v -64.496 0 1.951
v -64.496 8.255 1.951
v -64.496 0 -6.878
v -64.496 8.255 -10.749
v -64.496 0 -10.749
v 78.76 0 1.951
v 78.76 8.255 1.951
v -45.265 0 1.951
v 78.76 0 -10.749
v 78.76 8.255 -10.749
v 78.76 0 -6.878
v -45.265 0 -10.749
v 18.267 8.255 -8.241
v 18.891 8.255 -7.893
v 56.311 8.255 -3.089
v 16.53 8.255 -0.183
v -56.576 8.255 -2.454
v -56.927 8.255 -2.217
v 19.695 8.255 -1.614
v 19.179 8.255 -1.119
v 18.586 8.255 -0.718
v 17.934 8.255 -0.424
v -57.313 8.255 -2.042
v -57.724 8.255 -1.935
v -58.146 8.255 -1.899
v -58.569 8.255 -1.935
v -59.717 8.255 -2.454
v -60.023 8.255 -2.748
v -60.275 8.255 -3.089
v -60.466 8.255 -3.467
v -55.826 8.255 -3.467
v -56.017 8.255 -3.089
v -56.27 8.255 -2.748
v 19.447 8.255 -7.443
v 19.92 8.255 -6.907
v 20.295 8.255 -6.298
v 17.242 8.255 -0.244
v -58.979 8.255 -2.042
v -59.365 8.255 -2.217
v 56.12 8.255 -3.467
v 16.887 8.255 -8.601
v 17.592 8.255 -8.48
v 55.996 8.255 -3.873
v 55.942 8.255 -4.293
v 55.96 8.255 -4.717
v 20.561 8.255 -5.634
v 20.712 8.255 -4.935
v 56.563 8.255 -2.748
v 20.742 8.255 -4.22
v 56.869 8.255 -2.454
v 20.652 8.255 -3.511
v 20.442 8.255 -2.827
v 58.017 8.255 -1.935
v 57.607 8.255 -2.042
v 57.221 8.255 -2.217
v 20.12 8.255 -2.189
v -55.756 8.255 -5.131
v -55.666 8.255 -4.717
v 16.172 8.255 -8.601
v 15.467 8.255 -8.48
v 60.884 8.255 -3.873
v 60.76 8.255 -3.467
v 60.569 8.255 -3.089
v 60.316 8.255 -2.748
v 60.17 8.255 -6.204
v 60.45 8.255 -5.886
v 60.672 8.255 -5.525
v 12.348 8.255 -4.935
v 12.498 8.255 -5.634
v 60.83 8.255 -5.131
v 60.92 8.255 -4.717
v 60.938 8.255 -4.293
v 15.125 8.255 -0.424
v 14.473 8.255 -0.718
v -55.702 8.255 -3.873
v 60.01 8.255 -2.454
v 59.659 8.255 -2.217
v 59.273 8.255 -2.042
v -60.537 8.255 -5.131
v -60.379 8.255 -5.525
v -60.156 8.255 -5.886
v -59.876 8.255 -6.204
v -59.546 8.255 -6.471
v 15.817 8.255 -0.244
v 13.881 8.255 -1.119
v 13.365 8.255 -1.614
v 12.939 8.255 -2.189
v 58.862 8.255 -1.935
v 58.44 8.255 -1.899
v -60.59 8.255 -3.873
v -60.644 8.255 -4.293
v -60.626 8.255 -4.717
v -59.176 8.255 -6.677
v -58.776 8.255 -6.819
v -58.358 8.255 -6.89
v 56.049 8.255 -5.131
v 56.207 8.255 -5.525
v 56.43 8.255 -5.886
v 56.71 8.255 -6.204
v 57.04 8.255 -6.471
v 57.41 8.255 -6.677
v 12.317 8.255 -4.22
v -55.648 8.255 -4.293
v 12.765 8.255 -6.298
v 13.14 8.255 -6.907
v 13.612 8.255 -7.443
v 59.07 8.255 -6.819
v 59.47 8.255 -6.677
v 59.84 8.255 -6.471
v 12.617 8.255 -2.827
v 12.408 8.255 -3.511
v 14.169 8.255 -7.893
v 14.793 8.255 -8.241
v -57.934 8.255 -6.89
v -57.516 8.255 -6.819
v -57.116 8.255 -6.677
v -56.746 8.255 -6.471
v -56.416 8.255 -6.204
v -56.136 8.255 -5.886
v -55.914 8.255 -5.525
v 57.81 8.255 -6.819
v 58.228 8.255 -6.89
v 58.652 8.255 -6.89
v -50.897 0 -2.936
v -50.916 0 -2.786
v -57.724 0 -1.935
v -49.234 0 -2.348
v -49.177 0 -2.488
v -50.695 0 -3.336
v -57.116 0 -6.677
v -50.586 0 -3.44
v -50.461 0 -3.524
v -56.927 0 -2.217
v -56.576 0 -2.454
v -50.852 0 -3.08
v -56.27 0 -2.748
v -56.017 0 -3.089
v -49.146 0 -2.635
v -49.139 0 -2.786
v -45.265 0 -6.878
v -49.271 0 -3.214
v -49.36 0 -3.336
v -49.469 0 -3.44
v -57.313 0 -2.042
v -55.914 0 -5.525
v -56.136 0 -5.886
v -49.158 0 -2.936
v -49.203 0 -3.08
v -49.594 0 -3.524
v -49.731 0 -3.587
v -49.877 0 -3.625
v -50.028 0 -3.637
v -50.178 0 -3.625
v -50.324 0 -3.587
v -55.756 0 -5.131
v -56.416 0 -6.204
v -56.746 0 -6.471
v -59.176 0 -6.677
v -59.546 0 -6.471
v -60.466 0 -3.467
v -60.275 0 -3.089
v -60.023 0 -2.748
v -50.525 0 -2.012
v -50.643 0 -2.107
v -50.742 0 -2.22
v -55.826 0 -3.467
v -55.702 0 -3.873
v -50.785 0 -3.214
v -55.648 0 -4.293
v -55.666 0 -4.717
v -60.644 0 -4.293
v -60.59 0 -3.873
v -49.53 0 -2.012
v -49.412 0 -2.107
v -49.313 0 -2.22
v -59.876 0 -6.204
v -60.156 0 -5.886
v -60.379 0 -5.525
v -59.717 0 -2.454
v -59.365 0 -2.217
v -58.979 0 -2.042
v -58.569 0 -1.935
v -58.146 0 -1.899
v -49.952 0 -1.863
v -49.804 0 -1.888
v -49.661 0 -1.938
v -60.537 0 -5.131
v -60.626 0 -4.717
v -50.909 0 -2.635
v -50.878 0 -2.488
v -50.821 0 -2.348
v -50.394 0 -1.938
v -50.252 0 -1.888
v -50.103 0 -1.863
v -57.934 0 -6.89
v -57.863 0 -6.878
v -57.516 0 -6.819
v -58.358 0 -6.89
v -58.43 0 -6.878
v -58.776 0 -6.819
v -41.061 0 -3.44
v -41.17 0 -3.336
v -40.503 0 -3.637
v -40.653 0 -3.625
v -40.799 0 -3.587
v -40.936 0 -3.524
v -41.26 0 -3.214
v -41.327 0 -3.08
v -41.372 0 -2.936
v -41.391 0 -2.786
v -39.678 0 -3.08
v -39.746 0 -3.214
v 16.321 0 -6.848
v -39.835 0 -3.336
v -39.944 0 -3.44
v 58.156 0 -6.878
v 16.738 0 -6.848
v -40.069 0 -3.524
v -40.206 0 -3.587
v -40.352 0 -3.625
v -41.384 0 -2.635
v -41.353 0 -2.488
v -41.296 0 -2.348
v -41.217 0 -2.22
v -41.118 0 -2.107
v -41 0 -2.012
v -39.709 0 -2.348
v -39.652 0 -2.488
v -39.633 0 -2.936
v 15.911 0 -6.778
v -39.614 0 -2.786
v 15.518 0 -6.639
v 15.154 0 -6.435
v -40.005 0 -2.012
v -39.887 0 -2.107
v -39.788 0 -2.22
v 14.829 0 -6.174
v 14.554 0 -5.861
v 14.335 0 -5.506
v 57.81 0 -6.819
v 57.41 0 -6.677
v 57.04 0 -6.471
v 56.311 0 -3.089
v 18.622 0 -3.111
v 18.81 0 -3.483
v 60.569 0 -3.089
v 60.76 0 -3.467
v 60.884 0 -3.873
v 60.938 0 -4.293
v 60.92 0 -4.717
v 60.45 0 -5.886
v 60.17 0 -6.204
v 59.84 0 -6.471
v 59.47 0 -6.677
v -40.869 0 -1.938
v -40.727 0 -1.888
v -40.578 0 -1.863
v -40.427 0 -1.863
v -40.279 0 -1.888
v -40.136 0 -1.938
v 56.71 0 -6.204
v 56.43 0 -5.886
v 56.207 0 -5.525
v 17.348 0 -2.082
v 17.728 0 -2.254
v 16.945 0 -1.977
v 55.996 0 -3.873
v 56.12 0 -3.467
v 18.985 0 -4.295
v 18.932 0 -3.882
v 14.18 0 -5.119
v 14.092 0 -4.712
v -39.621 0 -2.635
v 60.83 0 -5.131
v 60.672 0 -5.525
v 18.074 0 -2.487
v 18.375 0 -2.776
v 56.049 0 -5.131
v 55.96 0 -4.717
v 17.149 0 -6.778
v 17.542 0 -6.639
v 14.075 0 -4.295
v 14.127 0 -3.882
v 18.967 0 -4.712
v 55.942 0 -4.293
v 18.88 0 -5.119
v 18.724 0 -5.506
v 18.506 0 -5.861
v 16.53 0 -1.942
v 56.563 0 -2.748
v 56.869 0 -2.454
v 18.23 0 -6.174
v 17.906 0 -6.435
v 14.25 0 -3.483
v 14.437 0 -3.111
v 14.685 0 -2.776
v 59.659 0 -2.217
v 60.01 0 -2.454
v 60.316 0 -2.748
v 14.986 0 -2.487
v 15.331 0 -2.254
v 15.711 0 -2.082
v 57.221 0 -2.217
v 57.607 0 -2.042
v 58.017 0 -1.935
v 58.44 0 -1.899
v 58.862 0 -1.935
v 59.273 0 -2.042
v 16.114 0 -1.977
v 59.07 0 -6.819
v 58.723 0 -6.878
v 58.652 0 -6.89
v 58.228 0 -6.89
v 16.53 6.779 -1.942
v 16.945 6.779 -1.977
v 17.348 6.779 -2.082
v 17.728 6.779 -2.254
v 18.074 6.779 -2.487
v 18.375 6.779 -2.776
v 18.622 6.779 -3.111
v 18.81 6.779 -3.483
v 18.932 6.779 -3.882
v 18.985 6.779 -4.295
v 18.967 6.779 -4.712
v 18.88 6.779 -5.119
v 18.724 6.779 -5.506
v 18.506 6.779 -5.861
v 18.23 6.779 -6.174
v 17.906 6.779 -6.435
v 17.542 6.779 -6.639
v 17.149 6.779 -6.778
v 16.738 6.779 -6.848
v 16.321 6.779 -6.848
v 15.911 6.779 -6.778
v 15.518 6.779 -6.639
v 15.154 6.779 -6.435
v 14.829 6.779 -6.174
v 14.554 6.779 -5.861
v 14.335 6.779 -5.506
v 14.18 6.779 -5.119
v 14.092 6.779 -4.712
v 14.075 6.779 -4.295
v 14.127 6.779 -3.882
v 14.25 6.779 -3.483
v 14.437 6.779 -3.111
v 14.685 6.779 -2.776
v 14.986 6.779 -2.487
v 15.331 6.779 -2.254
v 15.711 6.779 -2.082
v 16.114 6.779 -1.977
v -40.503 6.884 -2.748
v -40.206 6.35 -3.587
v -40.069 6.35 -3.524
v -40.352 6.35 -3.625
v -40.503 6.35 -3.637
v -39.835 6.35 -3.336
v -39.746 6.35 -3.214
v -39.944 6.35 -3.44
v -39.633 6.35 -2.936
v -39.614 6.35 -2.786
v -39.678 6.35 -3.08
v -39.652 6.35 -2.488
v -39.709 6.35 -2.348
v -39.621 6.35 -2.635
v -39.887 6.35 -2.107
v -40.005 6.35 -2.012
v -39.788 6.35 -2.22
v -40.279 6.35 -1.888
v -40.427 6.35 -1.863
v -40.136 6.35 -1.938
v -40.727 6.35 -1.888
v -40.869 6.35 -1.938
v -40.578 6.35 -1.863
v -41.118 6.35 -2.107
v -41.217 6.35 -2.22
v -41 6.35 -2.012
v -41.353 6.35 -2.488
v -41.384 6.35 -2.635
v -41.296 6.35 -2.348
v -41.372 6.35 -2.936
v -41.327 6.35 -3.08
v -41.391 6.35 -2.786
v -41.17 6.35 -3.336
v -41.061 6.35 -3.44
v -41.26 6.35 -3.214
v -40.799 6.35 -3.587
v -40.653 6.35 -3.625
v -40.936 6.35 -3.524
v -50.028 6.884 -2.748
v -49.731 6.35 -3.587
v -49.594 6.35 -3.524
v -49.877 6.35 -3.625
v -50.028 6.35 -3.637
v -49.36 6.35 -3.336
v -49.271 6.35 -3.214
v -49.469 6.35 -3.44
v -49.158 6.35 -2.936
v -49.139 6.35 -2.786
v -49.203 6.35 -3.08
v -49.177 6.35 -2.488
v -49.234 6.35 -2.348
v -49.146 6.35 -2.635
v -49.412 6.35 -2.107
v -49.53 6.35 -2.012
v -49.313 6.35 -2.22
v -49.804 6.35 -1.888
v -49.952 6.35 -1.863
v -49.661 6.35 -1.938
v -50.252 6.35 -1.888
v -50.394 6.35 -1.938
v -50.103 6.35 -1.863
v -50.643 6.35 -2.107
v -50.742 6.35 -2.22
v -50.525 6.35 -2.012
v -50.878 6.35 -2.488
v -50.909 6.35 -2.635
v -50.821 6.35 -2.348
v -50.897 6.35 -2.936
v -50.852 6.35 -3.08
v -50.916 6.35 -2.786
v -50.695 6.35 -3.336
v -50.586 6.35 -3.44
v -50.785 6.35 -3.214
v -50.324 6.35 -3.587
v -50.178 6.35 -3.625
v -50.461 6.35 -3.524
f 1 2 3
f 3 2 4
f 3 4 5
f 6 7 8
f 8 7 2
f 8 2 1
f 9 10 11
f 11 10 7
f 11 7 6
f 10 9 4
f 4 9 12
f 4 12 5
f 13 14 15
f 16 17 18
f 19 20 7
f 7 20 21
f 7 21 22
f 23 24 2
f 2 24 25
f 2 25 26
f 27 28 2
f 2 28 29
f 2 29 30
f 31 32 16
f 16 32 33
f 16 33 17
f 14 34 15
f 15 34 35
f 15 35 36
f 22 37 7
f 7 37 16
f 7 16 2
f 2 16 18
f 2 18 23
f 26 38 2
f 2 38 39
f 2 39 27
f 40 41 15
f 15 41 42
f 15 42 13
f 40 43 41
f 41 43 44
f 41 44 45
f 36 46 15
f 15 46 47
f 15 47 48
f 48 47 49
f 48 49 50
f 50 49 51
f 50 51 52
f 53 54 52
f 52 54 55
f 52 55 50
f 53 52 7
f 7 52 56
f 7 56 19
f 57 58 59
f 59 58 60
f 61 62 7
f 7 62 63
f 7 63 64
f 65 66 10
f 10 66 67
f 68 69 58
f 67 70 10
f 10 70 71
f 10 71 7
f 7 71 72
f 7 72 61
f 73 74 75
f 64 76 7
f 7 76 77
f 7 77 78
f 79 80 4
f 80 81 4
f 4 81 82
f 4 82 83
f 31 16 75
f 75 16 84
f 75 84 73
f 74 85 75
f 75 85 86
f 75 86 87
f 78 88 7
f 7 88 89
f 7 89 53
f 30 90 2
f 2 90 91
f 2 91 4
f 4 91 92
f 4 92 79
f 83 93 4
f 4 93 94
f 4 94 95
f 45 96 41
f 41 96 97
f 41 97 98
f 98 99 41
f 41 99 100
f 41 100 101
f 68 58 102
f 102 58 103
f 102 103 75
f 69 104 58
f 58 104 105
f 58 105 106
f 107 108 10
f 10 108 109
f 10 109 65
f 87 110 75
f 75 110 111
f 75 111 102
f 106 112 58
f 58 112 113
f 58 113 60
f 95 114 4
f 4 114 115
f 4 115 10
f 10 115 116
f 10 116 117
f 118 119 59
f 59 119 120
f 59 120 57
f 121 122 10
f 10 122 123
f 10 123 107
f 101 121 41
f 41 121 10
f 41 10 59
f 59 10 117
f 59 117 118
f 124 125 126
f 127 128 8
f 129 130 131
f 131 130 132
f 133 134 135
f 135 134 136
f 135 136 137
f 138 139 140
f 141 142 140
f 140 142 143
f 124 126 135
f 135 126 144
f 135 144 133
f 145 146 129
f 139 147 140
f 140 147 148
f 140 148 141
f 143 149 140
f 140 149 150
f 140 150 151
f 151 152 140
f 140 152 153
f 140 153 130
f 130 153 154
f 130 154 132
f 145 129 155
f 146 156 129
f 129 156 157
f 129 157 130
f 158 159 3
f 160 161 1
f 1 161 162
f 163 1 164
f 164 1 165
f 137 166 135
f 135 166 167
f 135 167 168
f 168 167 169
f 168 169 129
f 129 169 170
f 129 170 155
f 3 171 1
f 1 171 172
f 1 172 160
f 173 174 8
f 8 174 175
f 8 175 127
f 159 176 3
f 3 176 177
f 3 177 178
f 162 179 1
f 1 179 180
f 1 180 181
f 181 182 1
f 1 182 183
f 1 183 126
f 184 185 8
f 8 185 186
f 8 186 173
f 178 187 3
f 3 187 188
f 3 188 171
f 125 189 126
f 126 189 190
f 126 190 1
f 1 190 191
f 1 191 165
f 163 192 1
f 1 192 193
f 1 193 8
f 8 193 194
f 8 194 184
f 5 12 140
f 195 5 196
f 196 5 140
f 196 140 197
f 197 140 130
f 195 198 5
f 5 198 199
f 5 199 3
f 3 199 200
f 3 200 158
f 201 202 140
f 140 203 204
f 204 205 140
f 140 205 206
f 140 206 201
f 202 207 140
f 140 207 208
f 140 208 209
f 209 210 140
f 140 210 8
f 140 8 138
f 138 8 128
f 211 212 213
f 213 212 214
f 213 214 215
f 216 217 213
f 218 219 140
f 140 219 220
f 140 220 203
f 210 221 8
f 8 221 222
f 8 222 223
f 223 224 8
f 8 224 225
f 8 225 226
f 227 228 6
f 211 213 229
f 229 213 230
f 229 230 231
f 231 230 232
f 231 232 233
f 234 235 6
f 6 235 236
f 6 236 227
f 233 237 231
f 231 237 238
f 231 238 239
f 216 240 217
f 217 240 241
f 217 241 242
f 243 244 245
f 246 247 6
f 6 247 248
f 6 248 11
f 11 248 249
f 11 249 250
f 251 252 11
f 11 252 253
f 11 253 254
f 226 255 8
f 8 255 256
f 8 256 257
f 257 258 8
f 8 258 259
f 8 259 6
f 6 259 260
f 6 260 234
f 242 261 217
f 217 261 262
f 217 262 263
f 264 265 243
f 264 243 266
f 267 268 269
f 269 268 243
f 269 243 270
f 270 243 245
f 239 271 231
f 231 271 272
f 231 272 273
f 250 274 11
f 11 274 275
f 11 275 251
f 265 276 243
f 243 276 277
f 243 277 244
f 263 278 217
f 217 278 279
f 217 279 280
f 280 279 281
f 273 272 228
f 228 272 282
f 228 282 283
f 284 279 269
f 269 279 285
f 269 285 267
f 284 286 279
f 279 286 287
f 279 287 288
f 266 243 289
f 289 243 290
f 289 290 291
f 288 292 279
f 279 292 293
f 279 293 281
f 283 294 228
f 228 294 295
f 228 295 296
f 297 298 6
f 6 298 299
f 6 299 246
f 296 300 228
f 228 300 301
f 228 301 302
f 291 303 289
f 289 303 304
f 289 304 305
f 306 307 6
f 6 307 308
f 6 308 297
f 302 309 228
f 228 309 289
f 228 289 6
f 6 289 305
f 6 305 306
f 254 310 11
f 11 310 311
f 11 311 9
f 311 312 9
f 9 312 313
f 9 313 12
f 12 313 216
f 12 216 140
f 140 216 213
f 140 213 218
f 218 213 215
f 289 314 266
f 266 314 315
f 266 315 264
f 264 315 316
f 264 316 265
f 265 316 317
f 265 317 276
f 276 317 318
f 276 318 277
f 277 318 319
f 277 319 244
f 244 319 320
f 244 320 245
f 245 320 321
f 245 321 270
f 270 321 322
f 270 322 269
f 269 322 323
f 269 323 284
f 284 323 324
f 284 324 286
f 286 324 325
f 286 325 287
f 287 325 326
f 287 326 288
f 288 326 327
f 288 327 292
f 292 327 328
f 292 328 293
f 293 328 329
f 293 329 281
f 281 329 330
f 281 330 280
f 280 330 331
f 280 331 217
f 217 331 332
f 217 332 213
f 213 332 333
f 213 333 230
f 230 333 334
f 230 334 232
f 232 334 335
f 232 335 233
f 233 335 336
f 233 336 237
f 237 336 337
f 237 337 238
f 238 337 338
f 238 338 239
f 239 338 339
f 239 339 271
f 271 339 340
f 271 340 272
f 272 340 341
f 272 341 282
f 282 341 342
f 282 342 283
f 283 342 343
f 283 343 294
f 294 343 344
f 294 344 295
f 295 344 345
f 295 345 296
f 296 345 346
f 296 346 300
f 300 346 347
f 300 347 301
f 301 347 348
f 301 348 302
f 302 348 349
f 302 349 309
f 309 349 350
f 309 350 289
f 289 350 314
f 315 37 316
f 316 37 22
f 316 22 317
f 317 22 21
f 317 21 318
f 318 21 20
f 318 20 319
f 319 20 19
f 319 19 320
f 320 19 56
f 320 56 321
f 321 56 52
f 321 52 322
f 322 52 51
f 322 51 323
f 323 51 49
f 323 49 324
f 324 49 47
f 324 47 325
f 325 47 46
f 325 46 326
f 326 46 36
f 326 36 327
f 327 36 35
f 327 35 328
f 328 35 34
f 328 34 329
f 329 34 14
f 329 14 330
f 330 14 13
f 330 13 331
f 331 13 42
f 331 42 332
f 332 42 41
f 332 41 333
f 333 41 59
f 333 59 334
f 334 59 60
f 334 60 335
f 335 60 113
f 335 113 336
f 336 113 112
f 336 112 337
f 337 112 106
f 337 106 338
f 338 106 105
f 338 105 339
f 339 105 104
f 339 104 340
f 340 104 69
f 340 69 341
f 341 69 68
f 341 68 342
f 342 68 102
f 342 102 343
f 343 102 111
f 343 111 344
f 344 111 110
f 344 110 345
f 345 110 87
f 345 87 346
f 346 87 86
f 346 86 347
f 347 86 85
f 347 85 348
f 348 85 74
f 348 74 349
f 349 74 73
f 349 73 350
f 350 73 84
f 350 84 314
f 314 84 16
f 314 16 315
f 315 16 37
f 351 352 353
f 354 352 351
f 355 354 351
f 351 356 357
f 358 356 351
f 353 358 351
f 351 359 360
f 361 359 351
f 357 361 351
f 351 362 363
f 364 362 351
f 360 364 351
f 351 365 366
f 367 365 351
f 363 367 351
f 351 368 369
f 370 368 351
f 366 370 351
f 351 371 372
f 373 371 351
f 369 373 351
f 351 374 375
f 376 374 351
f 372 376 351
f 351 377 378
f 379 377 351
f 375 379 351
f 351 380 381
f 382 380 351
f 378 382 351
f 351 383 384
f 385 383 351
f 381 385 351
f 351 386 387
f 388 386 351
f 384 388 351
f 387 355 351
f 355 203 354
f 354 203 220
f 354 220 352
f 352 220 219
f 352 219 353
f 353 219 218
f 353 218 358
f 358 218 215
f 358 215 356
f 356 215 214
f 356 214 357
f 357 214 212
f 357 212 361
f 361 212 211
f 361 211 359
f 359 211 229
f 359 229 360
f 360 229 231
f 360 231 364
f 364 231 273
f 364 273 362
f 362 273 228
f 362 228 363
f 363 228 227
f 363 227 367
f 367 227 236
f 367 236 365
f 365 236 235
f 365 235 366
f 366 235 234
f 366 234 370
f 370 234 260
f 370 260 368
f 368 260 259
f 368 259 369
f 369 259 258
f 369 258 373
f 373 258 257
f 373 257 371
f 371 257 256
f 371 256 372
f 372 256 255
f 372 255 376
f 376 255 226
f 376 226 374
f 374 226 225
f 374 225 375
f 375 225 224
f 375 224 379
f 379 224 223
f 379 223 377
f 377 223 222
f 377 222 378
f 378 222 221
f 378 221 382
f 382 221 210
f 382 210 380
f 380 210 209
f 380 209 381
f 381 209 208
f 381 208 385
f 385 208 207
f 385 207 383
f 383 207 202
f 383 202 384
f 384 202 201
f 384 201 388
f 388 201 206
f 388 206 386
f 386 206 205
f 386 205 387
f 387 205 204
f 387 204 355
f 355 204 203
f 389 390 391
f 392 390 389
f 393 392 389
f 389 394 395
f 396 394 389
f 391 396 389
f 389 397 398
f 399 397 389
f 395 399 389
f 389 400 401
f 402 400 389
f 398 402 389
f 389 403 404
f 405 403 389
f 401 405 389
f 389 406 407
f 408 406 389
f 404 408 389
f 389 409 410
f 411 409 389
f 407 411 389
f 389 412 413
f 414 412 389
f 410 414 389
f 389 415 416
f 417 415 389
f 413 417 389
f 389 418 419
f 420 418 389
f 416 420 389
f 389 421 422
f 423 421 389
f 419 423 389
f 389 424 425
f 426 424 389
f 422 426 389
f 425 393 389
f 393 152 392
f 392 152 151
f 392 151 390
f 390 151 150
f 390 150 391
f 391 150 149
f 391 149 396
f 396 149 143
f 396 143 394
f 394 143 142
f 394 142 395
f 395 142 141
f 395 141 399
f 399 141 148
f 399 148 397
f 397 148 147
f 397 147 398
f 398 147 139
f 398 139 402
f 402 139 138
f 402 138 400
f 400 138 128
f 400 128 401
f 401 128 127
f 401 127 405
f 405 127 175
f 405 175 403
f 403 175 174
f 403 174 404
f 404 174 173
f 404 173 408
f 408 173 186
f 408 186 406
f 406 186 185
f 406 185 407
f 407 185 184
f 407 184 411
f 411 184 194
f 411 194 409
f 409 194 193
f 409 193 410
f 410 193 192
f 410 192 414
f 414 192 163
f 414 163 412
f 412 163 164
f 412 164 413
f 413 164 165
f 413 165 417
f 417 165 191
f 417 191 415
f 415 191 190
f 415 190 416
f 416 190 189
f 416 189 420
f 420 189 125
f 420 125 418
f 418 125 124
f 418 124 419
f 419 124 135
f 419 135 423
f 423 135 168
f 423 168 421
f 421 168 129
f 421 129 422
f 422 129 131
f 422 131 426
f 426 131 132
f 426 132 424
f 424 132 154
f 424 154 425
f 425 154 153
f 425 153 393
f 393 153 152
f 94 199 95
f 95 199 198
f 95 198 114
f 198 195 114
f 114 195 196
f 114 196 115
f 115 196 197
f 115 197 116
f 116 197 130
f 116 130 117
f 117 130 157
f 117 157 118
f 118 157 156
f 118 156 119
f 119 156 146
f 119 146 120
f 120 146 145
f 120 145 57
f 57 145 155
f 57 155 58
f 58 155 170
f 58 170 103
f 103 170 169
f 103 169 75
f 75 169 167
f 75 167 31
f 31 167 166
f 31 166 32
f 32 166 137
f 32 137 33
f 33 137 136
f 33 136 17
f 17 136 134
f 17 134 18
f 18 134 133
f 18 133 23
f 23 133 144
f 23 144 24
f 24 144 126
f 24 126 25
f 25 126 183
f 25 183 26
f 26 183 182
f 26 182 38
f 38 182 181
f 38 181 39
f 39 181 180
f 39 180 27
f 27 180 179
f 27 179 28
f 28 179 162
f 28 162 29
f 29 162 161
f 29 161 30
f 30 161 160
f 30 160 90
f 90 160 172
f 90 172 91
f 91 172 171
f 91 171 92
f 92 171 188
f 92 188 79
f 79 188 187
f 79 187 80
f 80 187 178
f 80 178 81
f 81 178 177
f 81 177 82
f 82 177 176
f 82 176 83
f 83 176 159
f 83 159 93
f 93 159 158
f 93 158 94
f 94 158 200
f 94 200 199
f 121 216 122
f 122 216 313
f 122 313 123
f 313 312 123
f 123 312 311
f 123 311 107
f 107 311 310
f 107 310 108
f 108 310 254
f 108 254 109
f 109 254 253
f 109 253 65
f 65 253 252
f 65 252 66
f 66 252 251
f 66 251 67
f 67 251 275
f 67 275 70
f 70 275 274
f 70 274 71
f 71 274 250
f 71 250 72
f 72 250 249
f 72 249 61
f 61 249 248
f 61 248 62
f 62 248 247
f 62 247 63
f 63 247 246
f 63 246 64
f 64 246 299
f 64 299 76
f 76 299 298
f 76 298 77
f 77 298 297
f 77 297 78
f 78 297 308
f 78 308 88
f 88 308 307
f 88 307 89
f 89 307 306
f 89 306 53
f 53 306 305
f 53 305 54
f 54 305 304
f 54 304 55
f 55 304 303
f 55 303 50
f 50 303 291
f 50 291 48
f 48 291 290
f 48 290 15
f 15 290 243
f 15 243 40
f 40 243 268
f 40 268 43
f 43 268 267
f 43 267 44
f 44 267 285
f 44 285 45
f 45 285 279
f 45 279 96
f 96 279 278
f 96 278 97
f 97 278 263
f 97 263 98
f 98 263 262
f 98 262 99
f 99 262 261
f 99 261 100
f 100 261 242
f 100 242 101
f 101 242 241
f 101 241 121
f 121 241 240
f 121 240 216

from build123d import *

# Parameters (mm, degrees)
SKETCH1_W                                         = 143.256
SKETCH1_H                                         = 12.7
BOSS_EXTRUDE1_DEPTH                               = 8.255
CSK_FOR_8_FLAT_HEAD_MACHINE_SCREW_100_D           = 4.9149
CSK_FOR_8_FLAT_HEAD_MACHINE_SCREW_100_CSINK_D     = 8.4328
CSK_FOR_8_FLAT_HEAD_MACHINE_SCREW_100_CSINK_ANGLE = 100
TAP_DRILL_FOR_2_56_TAP2_D                         = 1.778
TAP_DRILL_FOR_2_56_TAP2_DEPTH                     = 6.35
TAP_DRILL_FOR_2_56_TAP2_TIP                       = 0.53416509
TAP_DRILL_FOR_M6X1_0_TAP1_D                       = 5


with BuildPart() as part:
    # Sketch1 → Boss-Extrude1 (new body)
    with BuildSketch(Plane(origin=(0, 0, 0), x_dir=(1, 0, 0), z_dir=(0, 1, 0))):
        with Locations((7.131792208, 4.399367965)):
            Rectangle(SKETCH1_W, SKETCH1_H)
    extrude(amount=BOSS_EXTRUDE1_DEPTH)

    # CSK for #8 Flat Head Machine Screw (100)1 (through all)
    with Locations(Plane(origin=(0, 8.255, 0), x_dir=(1, 0, 0), z_dir=(0, 1, 0))):
        with Locations((16.529792208, 4.399367965)):
            CounterSinkHole(CSK_FOR_8_FLAT_HEAD_MACHINE_SCREW_100_D / 2, CSK_FOR_8_FLAT_HEAD_MACHINE_SCREW_100_CSINK_D / 2, counter_sink_angle=CSK_FOR_8_FLAT_HEAD_MACHINE_SCREW_100_CSINK_ANGLE)

    # Tap Drill for #2-56 Tap2
    with Locations(Plane(origin=(0, 0, 0), x_dir=(-1, 0, 0), z_dir=(0, -1, 0))):
        with Locations((50.027522326, 2.748367965), (40.502522326, 2.748367965)):
            Hole(TAP_DRILL_FOR_2_56_TAP2_D / 2, depth=TAP_DRILL_FOR_2_56_TAP2_DEPTH)
            with Locations((0, 0, -(TAP_DRILL_FOR_2_56_TAP2_DEPTH + TAP_DRILL_FOR_2_56_TAP2_TIP / 2))):  # 118° drill point
                Cone(0, TAP_DRILL_FOR_2_56_TAP2_D / 2, TAP_DRILL_FOR_2_56_TAP2_TIP, mode=Mode.SUBTRACT)

    # Tap Drill for M6x1.0 Tap1 (through all)
    with Locations(Plane(origin=(0, 8.255, 0), x_dir=(1, 0, 0), z_dir=(0, 1, 0))):
        with Locations((58.439792208, 4.399367965), (-58.146207792, 4.399367965)):
            Hole(TAP_DRILL_FOR_M6X1_0_TAP1_D / 2)


solid = part.part
